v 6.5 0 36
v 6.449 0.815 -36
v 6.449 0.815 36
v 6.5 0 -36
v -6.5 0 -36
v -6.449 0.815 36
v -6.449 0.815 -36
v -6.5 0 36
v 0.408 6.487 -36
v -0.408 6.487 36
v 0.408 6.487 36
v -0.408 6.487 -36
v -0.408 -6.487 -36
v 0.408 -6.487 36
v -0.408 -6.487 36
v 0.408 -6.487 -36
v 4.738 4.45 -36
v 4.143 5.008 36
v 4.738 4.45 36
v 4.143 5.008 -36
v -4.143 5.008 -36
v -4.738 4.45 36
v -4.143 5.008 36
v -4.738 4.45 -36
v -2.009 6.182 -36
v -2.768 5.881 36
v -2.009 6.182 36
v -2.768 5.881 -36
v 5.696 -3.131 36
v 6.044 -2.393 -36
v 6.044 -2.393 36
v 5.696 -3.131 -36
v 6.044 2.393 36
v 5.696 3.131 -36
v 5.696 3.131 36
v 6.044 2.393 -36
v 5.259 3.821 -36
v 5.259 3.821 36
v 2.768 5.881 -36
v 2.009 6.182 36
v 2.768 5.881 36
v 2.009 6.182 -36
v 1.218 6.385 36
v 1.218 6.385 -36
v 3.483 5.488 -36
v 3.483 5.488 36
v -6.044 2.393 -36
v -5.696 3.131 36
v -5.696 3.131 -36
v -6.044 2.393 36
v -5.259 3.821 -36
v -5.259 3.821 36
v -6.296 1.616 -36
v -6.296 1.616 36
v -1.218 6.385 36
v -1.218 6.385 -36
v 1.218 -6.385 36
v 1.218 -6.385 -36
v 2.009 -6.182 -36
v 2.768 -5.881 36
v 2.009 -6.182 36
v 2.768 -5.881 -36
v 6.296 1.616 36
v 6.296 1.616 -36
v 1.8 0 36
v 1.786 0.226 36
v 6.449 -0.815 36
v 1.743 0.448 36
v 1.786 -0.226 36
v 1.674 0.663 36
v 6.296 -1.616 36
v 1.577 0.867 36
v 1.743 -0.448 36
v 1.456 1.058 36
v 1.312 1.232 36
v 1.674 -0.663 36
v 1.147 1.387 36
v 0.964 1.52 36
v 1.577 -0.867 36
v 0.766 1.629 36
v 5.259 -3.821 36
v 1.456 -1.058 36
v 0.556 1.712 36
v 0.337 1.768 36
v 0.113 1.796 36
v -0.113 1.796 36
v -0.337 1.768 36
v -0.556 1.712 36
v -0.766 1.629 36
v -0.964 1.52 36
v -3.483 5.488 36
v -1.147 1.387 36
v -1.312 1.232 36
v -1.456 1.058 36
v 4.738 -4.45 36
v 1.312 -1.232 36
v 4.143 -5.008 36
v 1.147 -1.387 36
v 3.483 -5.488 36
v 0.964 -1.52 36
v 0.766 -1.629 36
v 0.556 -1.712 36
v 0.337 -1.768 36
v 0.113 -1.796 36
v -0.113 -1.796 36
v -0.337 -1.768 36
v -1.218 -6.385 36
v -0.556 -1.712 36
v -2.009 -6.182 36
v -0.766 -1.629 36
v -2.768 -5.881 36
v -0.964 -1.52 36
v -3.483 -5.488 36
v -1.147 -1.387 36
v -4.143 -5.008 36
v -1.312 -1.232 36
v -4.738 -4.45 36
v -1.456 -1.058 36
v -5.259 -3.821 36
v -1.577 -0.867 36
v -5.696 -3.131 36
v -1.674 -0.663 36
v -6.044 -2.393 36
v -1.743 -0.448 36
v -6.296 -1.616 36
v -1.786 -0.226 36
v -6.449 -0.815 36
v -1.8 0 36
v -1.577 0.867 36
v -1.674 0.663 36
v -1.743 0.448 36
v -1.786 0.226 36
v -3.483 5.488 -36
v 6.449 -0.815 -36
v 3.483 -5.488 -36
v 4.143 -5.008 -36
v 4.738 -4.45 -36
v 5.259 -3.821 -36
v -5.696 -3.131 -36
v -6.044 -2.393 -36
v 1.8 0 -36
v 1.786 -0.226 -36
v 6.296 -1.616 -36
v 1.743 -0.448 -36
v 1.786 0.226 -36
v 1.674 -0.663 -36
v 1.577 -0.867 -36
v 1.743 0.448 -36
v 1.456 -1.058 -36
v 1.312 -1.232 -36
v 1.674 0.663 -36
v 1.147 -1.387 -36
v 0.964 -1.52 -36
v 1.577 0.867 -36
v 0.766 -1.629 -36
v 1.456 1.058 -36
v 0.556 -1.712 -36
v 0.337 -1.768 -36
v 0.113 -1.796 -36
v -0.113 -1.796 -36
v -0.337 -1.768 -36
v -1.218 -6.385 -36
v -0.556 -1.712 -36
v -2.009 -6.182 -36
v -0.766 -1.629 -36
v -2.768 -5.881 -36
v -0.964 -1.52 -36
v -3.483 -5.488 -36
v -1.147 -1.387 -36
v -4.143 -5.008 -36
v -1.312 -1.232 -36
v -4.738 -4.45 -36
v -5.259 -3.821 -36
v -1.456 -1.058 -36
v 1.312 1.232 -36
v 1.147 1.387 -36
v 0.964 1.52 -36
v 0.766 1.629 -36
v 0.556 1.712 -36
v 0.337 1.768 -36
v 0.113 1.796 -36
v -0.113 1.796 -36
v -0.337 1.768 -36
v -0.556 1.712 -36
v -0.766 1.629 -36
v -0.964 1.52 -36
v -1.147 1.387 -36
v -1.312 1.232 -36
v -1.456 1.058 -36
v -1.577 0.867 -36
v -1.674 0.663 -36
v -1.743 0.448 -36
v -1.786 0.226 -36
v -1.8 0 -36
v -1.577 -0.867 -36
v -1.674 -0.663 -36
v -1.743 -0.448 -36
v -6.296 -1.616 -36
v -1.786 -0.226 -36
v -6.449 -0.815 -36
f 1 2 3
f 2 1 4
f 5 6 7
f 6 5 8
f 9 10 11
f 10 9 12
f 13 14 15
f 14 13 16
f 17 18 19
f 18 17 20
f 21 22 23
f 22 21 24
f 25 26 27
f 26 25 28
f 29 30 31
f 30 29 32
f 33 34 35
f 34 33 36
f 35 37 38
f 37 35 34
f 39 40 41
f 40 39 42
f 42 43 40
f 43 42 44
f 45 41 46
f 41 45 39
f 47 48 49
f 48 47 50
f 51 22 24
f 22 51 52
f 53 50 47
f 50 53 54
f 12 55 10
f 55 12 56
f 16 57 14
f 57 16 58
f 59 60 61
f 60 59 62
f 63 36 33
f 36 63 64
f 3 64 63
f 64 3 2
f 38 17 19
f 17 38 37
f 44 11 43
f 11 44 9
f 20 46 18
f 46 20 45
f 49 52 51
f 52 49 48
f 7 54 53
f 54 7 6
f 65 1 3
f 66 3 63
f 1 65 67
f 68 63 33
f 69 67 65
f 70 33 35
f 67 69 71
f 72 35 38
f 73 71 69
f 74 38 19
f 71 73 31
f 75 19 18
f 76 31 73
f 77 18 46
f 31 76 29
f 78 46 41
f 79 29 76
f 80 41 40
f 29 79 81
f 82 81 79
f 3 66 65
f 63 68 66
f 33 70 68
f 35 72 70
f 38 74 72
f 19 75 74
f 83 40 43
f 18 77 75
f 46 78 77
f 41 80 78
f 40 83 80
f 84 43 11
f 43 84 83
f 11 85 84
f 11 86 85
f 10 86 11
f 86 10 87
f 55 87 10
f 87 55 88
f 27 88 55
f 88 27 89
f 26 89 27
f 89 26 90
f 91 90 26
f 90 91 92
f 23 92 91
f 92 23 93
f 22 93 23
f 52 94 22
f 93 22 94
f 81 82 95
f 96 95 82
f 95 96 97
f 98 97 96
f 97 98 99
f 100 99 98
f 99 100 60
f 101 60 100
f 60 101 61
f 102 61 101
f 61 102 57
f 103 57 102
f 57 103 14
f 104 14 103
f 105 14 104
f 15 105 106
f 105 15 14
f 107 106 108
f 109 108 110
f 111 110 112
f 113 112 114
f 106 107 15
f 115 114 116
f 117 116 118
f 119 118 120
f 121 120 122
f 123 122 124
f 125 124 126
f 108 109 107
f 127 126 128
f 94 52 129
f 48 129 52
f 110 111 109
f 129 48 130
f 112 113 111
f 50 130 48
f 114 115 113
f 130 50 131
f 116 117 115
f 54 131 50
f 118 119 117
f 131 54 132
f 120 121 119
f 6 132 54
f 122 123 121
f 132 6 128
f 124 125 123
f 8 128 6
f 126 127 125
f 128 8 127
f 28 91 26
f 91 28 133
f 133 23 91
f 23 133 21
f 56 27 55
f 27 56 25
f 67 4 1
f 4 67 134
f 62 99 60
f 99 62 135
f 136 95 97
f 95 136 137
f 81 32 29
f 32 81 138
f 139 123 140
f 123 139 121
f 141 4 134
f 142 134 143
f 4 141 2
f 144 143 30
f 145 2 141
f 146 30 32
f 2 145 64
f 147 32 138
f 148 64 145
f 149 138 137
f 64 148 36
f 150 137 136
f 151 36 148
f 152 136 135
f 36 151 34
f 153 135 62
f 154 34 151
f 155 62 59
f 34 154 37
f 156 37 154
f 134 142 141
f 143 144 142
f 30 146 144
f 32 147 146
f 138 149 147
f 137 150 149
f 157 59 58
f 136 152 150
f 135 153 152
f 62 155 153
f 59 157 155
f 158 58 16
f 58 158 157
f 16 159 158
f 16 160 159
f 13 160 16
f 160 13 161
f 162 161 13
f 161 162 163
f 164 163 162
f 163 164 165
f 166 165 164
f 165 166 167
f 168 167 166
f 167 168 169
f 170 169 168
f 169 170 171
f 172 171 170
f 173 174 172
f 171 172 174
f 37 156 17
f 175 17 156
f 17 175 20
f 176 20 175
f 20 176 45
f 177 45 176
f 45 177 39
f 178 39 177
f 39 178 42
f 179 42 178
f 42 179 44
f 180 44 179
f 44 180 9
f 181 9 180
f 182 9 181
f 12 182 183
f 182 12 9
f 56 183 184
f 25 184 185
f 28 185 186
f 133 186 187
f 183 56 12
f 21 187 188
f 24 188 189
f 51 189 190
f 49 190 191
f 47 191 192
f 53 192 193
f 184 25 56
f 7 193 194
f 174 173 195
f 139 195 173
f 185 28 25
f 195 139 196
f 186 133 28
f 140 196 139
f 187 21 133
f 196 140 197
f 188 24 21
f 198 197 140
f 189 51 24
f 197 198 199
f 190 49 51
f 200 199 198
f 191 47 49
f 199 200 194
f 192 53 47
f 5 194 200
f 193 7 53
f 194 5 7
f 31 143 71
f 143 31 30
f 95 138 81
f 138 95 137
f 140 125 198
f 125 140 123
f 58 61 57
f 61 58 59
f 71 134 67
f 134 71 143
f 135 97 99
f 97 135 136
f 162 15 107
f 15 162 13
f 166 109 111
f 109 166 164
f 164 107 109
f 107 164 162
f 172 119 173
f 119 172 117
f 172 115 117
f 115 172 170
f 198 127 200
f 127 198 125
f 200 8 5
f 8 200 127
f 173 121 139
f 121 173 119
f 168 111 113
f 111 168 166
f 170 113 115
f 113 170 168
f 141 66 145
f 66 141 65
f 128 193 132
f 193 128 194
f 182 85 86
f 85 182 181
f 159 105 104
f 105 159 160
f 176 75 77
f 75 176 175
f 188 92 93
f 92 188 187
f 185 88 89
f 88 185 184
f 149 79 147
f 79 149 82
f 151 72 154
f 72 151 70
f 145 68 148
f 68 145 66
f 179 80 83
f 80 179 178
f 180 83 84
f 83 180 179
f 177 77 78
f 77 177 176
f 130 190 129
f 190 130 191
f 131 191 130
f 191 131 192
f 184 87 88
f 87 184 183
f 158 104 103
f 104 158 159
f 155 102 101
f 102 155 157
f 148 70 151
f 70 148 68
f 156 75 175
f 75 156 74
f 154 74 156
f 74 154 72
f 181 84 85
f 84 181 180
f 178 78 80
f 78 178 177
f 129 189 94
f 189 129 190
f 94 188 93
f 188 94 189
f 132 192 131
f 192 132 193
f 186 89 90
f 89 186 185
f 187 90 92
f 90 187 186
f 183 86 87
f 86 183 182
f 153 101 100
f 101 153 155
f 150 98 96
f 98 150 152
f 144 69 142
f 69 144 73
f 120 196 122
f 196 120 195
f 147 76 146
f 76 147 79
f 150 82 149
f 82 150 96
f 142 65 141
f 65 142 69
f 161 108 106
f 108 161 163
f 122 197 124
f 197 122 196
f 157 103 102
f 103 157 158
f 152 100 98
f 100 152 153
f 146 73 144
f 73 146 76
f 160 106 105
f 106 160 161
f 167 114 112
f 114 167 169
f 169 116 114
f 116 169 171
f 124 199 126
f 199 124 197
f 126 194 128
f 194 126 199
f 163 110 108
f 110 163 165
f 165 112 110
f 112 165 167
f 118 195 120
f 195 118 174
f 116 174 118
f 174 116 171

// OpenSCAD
$fn = 50;


difference() {
	union() {
		translate(v = [0, 0, -36.0000000000]) {
			cylinder(h = 72, r = 6.5000000000);
		}
	}
	union() {
		translate(v = [0, 0, -100.0000000000]) {
			cylinder(h = 200, r = 1.8000000000);
		}
	}
}
